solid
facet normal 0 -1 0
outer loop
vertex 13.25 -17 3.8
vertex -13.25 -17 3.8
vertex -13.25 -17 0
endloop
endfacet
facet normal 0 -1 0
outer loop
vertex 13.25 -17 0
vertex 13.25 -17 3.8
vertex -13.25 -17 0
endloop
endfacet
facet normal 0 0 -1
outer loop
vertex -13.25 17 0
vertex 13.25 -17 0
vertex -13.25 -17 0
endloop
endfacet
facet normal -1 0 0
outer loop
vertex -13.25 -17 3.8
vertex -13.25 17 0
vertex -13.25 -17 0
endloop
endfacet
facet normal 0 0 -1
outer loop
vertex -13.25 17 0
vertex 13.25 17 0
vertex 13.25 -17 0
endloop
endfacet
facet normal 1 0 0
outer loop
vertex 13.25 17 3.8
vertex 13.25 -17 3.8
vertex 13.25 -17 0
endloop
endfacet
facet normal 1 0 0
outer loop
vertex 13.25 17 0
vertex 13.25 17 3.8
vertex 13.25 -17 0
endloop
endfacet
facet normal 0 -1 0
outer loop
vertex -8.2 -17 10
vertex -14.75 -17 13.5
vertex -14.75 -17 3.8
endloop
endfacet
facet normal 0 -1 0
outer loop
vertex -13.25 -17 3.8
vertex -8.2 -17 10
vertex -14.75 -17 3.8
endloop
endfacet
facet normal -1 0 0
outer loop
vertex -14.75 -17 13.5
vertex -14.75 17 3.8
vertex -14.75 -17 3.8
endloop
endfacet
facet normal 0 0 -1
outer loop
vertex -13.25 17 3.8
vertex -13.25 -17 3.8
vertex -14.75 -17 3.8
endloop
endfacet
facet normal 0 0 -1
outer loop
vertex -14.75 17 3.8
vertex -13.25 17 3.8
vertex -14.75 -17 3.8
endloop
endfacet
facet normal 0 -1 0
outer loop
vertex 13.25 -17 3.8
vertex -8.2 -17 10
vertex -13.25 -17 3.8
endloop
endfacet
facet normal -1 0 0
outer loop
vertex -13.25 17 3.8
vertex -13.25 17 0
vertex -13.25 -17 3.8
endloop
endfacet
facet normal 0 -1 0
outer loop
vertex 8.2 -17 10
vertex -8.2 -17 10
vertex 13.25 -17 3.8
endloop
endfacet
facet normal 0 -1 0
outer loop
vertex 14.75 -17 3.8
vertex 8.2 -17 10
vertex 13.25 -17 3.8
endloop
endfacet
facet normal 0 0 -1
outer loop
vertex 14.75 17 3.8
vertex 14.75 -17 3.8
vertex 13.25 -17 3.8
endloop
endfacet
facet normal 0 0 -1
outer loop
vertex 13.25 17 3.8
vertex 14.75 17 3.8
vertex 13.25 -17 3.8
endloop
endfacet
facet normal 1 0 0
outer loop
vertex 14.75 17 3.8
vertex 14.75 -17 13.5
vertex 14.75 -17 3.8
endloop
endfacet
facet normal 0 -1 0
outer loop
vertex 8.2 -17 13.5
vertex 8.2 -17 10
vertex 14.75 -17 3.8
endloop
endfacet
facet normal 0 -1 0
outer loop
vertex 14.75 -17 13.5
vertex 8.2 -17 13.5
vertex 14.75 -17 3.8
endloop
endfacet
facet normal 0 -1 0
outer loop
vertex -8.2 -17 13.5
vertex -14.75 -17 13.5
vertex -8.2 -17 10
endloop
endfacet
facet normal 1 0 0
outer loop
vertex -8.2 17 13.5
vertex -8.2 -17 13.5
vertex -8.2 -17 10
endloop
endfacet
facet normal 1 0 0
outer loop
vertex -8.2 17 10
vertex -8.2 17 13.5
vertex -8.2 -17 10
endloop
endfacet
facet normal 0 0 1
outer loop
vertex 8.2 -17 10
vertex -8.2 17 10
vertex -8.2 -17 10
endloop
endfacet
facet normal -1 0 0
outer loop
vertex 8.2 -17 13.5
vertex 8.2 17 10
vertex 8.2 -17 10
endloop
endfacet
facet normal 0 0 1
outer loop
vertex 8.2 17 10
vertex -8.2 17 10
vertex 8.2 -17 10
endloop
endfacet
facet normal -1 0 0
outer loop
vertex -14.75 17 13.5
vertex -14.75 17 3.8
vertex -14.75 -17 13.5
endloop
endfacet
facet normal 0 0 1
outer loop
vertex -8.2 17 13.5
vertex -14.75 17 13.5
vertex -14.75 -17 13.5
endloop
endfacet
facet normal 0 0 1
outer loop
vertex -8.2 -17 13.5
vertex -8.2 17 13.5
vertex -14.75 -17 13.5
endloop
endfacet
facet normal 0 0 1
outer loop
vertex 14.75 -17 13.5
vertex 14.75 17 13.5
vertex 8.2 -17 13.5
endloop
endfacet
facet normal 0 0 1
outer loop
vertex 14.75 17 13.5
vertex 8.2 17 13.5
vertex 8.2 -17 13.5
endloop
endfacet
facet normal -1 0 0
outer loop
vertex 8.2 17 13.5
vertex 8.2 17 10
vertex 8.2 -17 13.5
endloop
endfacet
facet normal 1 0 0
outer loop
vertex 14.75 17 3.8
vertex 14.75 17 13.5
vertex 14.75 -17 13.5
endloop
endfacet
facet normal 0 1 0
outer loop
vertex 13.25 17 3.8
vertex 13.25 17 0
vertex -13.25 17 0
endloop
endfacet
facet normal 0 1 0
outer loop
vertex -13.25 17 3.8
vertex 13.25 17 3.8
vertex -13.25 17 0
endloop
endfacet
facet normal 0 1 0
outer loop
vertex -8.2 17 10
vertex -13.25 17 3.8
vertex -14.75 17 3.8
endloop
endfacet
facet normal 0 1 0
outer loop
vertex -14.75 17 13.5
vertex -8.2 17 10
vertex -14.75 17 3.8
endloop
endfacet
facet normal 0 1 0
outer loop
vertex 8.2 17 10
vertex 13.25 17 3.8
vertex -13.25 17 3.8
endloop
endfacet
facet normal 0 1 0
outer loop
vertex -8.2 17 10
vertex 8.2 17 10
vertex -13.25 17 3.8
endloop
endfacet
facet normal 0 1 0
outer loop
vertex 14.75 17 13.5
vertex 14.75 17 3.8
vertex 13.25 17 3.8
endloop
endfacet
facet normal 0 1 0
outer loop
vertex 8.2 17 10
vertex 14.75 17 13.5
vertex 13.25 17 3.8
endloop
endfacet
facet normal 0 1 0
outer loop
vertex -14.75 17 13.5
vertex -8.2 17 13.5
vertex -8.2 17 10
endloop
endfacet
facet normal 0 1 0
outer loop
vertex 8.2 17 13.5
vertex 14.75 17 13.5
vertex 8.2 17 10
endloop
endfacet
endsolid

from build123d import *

# Parameters (mm, degrees)
SKETCH1_W           = 29.5
SKETCH1_H           = 34
BOSS_EXTRUDE1_DEPTH = 13.5
SKETCH2_W           = 1.5
SKETCH2_H           = 3.8
SKETCH2_W_2         = 16.4
SKETCH2_H_2         = 3.5
CUT_EXTRUDE1_DEPTH  = 40.443789118


with BuildPart() as part:
    # Sketch1 → Boss-Extrude1 (new body)
    with BuildSketch(Plane.XY):
        Rectangle(SKETCH1_W, SKETCH1_H)
    extrude(amount=BOSS_EXTRUDE1_DEPTH)

    # Sketch2 → Cut-Extrude1 (cut, through all)
    with BuildSketch(Plane(origin=(0, 17, 0), x_dir=(1, 0, 0), z_dir=(0, 1, 0))):
        with Locations((-14, -1.9)):
            Rectangle(SKETCH2_W, SKETCH2_H)
        with Locations((0, -11.75)):
            Rectangle(SKETCH2_W_2, SKETCH2_H_2)
    cut_extrude1 = extrude(amount=-CUT_EXTRUDE1_DEPTH, mode=Mode.SUBTRACT)

    # Mirror1: Cut-Extrude1 across plane
    add(cut_extrude1.mirror(Plane(origin=(0, 0, 0), x_dir=(0, 0, 1), z_dir=(1, 0, 0))), mode=Mode.SUBTRACT)


solid = part.part
